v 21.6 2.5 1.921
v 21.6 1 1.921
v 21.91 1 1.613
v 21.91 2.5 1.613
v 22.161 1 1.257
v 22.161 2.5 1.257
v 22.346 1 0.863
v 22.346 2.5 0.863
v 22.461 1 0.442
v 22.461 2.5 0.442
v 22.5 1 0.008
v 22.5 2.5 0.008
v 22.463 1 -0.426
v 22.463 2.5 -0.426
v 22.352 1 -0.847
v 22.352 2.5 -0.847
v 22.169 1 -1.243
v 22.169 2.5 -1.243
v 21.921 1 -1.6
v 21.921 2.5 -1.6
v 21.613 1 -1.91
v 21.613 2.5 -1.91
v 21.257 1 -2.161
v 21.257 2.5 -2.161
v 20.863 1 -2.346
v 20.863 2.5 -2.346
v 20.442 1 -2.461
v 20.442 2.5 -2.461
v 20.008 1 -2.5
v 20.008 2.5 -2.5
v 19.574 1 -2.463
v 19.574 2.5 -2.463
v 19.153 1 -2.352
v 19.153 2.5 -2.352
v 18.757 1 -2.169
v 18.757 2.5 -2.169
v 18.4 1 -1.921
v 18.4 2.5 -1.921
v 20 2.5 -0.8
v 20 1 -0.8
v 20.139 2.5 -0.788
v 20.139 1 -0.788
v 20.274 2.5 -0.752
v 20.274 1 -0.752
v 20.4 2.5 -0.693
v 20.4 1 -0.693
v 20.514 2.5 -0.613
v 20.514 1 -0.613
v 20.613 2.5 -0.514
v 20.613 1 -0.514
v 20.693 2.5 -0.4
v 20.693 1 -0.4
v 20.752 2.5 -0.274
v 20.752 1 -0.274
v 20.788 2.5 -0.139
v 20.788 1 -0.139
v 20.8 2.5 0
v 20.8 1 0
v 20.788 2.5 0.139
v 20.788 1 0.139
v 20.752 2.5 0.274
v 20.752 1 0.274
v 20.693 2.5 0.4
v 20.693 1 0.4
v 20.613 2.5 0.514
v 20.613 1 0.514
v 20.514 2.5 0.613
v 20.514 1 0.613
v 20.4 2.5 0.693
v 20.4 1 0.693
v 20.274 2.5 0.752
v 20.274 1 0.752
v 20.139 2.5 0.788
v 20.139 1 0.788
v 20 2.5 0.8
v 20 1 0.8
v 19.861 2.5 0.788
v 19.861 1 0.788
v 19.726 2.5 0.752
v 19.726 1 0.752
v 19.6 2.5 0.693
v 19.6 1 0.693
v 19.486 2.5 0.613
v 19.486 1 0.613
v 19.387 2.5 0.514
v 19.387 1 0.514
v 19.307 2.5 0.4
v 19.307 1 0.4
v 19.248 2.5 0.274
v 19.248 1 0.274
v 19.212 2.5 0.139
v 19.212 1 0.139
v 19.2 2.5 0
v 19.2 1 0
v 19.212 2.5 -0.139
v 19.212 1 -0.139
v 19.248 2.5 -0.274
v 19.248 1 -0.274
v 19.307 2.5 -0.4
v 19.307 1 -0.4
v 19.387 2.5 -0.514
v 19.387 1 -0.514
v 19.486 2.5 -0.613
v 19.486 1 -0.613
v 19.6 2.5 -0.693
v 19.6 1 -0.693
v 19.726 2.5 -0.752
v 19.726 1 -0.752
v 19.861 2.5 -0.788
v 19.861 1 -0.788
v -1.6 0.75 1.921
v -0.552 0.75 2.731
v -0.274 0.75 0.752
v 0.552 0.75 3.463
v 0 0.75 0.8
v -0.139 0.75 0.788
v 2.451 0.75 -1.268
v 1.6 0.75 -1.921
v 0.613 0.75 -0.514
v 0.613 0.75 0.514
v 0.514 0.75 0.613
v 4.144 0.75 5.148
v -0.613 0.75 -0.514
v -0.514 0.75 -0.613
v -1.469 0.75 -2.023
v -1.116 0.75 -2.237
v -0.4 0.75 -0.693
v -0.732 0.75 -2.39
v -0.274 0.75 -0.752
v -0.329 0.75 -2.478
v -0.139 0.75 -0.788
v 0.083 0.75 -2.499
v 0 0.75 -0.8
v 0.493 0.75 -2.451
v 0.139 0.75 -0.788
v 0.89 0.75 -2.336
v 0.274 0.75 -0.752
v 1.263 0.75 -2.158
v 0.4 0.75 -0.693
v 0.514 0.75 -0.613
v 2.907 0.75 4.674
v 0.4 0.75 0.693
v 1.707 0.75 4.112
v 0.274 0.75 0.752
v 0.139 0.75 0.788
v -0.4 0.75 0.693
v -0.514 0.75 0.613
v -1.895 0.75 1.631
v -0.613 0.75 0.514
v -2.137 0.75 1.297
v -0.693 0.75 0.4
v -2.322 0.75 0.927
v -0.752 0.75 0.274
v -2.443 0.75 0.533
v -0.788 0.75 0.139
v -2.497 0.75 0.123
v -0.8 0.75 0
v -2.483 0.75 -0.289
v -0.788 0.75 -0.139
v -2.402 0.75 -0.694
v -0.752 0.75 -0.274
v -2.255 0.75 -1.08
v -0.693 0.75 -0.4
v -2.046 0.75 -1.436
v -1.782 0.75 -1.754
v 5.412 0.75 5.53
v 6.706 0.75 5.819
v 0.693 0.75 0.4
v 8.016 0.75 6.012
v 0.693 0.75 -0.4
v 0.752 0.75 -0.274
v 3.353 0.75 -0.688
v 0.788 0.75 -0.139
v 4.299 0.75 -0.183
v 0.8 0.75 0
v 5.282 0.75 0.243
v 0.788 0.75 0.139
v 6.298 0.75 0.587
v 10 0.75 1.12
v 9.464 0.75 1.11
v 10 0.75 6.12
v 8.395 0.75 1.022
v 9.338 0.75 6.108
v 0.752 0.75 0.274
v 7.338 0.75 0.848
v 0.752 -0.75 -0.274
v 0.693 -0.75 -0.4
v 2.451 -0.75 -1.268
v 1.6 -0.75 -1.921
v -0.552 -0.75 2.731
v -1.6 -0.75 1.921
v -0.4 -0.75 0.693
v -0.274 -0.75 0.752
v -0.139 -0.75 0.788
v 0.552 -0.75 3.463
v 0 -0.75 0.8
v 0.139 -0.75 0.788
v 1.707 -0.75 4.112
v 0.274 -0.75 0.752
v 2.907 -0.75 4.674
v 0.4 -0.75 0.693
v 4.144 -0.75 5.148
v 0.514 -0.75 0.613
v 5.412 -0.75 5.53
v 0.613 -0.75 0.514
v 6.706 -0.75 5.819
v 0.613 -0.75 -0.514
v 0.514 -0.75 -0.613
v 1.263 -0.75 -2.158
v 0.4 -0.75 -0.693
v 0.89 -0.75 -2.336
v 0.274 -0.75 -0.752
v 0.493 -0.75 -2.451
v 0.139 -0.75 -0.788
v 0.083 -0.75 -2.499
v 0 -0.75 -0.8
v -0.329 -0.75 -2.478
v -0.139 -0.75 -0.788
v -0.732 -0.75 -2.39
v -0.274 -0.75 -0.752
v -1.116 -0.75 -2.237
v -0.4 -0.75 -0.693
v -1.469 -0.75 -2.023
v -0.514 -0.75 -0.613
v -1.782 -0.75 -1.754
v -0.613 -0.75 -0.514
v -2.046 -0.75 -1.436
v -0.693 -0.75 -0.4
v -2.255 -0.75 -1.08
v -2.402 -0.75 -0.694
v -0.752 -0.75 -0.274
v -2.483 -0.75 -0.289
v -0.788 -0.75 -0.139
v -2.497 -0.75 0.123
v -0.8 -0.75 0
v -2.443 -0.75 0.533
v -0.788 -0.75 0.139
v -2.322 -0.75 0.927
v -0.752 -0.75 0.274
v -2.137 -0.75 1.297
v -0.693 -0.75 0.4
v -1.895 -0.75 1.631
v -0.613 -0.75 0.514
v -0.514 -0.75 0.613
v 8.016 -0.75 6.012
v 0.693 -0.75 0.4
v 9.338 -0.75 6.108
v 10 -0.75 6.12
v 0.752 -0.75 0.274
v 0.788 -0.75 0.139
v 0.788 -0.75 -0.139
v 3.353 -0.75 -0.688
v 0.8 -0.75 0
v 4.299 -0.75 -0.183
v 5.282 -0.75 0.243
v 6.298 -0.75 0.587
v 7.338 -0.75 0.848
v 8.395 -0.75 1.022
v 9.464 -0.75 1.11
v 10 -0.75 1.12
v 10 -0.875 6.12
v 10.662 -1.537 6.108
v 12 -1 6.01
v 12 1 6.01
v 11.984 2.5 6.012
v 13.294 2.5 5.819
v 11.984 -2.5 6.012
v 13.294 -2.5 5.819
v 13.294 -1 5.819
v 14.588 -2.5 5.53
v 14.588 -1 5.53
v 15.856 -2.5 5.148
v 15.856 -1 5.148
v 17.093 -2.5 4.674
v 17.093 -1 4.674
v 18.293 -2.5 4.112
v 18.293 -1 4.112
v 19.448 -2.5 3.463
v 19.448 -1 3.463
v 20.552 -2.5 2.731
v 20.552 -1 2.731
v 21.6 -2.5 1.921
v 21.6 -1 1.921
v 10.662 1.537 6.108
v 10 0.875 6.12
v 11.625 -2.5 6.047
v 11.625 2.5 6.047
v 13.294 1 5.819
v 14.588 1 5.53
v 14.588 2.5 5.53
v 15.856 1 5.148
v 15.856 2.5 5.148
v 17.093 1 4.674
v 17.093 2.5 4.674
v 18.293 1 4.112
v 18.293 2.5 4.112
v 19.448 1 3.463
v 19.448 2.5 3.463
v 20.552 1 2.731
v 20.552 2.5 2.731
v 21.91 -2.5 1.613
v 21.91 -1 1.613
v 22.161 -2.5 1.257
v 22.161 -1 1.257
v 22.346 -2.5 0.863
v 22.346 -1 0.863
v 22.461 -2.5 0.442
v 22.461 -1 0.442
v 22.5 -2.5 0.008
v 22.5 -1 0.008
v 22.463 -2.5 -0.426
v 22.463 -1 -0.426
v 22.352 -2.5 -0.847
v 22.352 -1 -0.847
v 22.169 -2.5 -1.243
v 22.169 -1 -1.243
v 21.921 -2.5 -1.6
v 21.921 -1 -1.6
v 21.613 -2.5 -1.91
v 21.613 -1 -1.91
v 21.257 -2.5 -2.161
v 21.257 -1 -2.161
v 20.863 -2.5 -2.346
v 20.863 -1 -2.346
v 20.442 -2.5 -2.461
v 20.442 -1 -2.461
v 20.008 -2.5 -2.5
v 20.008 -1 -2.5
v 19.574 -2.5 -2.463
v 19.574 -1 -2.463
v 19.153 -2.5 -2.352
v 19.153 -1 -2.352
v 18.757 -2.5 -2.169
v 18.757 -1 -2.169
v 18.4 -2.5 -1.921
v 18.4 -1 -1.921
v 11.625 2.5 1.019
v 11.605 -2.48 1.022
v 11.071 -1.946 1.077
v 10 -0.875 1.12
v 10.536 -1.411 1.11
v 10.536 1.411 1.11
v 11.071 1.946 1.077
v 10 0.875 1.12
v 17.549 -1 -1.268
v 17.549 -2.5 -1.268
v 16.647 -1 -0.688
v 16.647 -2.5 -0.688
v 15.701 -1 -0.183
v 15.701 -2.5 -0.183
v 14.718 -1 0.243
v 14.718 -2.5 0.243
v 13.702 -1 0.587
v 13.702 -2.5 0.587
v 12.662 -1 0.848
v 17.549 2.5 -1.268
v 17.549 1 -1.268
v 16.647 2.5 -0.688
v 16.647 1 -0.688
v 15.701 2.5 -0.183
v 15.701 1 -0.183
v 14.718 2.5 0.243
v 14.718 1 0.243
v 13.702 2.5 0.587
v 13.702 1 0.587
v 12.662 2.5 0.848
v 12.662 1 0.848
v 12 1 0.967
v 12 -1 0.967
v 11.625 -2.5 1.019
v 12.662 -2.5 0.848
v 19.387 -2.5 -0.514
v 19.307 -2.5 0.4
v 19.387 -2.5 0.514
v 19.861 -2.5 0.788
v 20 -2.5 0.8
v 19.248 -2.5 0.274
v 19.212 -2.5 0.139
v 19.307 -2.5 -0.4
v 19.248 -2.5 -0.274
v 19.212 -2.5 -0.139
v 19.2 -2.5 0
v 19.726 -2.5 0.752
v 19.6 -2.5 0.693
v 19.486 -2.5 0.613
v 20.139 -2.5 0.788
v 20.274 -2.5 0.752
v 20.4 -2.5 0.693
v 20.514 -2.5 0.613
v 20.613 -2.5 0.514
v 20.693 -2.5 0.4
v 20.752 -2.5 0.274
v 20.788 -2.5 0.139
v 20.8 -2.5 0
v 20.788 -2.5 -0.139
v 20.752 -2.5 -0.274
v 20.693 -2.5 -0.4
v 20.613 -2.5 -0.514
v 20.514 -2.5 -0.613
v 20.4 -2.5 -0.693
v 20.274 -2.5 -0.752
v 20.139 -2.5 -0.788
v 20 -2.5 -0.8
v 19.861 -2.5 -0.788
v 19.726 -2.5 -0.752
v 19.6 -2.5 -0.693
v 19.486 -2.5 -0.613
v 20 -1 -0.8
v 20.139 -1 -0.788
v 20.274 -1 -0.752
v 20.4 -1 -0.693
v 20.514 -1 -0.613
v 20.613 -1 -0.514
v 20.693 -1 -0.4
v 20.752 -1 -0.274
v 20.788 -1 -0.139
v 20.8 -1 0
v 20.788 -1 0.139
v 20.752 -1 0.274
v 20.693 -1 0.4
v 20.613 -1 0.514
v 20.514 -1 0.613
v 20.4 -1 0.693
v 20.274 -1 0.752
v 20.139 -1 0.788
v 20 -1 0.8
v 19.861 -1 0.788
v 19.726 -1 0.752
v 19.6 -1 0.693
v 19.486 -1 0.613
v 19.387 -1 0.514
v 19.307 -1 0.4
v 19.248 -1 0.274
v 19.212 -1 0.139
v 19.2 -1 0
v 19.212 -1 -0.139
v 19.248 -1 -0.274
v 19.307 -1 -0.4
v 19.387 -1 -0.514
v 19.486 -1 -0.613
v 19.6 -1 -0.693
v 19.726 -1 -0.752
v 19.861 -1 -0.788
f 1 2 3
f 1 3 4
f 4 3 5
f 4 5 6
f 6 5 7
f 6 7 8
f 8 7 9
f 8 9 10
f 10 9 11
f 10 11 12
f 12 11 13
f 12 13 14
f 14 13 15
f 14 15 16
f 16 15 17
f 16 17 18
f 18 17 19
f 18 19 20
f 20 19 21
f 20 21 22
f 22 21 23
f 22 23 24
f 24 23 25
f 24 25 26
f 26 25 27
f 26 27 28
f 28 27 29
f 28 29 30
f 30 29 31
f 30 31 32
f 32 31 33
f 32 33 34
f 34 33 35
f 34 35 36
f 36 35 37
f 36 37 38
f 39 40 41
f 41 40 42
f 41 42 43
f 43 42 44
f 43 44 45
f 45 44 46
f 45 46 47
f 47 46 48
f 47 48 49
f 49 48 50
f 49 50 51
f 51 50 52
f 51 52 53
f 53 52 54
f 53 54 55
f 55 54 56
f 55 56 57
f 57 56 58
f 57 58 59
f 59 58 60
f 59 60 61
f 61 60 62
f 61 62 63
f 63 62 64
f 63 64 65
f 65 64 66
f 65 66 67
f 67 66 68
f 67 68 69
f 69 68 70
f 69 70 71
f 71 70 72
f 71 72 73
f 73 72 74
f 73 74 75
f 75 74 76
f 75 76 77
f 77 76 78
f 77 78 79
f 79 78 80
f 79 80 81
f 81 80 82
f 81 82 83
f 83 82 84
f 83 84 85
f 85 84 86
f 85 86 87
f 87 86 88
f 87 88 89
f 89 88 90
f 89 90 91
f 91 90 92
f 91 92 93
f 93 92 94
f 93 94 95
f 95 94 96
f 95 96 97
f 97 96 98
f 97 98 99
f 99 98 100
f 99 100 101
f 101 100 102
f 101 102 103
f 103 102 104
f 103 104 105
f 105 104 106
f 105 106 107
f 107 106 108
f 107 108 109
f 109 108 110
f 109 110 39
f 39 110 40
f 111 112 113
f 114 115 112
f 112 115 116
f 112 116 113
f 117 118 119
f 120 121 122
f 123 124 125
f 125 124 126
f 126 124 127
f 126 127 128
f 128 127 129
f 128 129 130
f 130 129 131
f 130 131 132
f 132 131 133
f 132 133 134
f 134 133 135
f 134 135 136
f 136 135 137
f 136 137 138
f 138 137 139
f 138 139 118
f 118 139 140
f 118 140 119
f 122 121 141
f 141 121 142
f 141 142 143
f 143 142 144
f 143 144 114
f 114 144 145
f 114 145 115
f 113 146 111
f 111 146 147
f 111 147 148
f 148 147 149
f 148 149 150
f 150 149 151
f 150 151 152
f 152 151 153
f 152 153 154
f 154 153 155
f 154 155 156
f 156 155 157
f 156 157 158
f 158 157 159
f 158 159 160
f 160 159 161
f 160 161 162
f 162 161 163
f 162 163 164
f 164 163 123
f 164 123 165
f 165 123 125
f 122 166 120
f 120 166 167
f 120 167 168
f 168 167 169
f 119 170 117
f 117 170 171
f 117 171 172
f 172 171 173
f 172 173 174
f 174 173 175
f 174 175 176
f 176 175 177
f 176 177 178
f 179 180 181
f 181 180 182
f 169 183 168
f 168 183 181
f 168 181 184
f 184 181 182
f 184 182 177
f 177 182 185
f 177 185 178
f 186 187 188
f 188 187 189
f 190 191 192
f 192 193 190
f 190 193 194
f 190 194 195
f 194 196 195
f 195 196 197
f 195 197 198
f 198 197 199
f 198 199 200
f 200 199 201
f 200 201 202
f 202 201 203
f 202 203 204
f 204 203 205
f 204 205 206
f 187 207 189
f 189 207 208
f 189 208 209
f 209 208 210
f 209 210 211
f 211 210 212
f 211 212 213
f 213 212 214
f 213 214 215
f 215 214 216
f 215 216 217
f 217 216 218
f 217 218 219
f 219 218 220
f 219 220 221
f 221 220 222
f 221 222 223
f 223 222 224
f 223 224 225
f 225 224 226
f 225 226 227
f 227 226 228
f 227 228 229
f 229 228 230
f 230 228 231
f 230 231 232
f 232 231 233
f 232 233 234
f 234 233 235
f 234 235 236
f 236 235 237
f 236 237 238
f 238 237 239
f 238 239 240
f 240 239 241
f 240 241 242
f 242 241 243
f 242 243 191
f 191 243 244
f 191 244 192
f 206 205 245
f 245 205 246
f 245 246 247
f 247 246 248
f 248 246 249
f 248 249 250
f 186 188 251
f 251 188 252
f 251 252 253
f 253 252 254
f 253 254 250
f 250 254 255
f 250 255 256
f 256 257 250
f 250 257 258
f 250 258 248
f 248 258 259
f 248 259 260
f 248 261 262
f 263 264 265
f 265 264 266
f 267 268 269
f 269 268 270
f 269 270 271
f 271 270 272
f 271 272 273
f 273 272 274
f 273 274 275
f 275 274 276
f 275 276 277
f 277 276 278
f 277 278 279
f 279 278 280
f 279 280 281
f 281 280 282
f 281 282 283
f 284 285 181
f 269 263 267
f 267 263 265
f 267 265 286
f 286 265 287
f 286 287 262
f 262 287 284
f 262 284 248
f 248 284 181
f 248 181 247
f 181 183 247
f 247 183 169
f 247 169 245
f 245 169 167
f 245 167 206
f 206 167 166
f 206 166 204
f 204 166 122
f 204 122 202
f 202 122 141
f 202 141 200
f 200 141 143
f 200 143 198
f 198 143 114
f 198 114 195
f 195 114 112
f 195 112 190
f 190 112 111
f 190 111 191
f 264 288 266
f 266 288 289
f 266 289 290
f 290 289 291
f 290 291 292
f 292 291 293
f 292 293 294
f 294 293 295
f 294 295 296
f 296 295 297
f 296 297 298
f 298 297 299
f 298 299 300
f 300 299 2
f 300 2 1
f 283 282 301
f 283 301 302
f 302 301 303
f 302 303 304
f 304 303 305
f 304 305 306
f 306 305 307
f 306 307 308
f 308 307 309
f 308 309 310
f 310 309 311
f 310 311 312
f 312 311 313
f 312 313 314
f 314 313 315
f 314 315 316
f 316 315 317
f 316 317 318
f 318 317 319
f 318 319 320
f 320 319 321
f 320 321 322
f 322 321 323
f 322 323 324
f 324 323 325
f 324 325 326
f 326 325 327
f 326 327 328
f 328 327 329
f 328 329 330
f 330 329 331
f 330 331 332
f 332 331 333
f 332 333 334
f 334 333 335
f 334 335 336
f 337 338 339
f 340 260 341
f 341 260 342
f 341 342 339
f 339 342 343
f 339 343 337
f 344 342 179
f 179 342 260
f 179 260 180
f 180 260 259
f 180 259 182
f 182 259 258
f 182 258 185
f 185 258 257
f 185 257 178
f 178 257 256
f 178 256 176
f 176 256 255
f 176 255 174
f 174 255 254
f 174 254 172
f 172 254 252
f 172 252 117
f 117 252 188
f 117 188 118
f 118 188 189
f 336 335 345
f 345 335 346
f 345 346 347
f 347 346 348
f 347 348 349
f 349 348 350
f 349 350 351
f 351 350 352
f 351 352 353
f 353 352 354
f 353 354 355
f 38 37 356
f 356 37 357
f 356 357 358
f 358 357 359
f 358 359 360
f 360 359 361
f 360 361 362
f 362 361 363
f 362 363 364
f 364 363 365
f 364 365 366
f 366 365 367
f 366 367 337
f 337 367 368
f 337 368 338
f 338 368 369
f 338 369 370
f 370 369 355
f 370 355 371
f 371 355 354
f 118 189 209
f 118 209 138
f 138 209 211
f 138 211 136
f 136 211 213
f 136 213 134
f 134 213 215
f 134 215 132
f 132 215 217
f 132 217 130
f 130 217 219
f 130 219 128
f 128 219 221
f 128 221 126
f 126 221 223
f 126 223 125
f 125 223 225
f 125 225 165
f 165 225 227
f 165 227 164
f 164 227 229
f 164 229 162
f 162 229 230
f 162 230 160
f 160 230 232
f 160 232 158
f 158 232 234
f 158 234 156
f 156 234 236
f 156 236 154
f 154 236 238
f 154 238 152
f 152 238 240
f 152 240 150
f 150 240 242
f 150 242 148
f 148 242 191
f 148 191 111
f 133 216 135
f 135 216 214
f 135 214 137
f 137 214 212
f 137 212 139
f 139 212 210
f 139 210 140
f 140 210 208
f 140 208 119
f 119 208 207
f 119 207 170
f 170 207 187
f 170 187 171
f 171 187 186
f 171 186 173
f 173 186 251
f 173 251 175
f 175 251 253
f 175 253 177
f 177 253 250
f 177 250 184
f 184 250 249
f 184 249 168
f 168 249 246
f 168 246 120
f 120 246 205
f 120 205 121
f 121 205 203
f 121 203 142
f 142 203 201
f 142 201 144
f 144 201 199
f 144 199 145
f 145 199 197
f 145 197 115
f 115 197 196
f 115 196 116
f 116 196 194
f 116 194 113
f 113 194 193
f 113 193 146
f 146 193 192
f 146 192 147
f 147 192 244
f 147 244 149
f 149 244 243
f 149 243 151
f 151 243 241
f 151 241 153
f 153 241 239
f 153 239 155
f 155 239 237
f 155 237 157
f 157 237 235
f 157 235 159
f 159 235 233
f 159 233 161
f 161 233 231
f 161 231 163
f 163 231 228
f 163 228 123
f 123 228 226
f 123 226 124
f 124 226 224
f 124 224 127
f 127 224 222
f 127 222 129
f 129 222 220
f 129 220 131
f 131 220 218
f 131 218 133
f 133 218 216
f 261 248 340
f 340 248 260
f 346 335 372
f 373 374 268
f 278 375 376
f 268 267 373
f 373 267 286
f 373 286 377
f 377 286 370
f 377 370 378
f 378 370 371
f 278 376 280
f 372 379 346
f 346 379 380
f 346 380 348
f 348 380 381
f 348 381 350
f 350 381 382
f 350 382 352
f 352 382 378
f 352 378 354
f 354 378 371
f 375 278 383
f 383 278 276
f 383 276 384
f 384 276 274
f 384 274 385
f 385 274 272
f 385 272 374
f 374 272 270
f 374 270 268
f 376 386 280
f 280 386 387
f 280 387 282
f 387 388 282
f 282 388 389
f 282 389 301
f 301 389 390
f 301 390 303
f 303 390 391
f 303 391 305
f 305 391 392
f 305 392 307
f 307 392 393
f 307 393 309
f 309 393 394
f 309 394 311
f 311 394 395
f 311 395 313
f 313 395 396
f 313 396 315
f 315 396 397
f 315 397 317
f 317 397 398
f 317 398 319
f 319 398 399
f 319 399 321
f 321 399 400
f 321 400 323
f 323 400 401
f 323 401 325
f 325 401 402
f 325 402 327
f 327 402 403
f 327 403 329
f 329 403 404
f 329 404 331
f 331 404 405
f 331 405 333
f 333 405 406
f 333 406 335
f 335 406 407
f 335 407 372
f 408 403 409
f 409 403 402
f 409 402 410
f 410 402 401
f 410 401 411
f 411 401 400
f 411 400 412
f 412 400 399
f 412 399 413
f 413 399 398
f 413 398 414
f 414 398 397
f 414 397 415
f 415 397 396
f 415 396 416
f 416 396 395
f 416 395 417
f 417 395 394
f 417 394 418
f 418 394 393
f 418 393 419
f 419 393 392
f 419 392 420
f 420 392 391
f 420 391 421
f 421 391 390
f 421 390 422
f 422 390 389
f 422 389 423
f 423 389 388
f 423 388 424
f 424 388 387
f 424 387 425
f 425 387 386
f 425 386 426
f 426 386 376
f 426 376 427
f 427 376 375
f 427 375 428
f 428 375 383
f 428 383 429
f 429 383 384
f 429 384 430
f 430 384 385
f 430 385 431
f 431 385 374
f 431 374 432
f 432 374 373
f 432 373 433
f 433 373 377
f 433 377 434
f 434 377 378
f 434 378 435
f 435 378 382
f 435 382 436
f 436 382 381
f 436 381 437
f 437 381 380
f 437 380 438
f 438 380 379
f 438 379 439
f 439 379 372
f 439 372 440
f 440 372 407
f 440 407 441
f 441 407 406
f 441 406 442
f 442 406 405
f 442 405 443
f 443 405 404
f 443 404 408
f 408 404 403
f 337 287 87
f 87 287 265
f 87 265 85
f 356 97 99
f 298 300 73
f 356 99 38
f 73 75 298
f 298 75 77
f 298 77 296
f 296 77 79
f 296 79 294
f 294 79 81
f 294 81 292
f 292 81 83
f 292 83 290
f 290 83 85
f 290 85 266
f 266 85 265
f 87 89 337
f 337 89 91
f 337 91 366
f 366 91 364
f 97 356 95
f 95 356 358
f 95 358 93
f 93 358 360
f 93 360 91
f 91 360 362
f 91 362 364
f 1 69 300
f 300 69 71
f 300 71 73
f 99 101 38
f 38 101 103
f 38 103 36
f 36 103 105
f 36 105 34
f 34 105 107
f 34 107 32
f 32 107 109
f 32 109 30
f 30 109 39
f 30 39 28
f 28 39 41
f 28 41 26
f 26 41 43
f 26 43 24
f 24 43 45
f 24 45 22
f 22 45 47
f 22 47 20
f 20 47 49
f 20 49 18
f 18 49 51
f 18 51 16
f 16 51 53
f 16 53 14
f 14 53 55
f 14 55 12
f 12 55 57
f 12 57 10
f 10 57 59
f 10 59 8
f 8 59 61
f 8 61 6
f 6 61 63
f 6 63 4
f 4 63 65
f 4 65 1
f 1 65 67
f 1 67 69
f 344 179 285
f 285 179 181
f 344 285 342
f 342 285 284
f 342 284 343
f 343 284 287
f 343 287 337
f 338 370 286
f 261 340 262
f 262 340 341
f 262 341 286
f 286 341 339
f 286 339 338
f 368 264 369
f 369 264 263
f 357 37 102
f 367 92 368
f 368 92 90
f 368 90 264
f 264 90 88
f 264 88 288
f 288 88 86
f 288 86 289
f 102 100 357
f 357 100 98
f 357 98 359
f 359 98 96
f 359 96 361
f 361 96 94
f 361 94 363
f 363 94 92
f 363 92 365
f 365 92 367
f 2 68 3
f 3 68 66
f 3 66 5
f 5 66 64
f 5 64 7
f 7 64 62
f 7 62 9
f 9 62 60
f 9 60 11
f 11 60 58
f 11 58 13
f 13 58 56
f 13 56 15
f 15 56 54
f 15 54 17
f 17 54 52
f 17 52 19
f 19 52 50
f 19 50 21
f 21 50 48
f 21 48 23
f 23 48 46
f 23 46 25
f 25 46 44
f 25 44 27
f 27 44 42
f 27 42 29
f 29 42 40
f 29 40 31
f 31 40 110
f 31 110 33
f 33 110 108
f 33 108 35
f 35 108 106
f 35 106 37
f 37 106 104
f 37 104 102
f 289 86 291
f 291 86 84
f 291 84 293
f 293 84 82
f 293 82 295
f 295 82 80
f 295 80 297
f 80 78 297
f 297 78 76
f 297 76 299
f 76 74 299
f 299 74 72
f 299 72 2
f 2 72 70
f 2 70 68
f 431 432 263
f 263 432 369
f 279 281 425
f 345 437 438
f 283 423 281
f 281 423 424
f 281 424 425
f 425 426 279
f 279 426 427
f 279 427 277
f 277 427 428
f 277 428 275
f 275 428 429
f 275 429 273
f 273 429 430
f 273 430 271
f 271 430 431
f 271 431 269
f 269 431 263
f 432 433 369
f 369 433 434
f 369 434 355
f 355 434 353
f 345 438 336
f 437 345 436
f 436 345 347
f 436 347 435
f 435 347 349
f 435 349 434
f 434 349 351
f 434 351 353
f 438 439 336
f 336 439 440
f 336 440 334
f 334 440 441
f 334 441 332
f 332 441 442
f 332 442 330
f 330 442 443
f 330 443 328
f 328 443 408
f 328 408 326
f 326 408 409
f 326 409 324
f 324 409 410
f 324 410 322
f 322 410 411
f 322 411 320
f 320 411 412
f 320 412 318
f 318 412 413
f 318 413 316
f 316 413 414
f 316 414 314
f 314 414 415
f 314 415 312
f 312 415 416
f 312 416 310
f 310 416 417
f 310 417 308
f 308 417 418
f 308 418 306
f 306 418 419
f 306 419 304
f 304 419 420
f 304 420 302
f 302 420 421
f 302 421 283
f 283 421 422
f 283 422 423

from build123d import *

# Parameters (mm, degrees)
SKETCH1_R               = 0.8
BOSS_EXTRUDE1_DEPTH     = 0.75
SKETCH2_R               = 0.8
BOSS_EXTRUDE2_DEPTH     = 2.5
CHAMFER1_SIZE           = 1.625
CUT_EXTRUDE1_DEPTH      = 24.451236904
CUT_EXTRUDE1_DEPTH_BACK = 24.451236904
SKETCH3_W               = 10.5
SKETCH3_H               = 2


with BuildPart() as part:
    # Sketch1 → Boss-Extrude1 (new, symmetric)
    with BuildSketch(Plane(origin=(0, 0, 0), x_dir=(1, 0, 0), z_dir=(0, 1, 0))):
        with BuildLine():
            ThreePointArc((1.600460999, 1.920553199), (-1.920553199, 1.600460999), (-1.600460999, -1.920553199))
            ThreePointArc((-1.600460999, -1.920553199), (10, -6.120499352), (21.600460999, -1.920553199))
            ThreePointArc((21.600460999, -1.920553199), (21.920553199, 1.600460999), (18.399539001, 1.920553199))
            ThreePointArc((18.399539001, 1.920553199), (10, -1.120499352), (1.600460999, 1.920553199))
        make_face()
        with Locations(Location((0, 0, 0), (0, 0, 270))):
            Circle(SKETCH1_R, mode=Mode.SUBTRACT)
        with Locations(Location((20, 0, 0), (0, 0, 270))):
            Circle(SKETCH1_R, mode=Mode.SUBTRACT)
    extrude(amount=BOSS_EXTRUDE1_DEPTH, both=True)

    # Sketch2 → Boss-Extrude2 (add, symmetric)
    with BuildSketch(Plane(origin=(0, 0, 0), x_dir=(1, 0, 0), z_dir=(0, 1, 0))):
        with BuildLine():
            Line((10, -1.120499352), (10, -6.120499352))
            ThreePointArc((10, -6.120499352), (16.168675771, -5.038190514), (21.600460999, -1.920553199))
            ThreePointArc((21.600460999, -1.920553199), (21.920553199, 1.600460999), (18.399539001, 1.920553199))
            ThreePointArc((18.399539001, 1.920553199), (14.466549452, -0.336832626), (10, -1.120499352))
        make_face()
        with Locations(Location((20, 0, 0), (0, 0, 270))):
            Circle(SKETCH2_R, mode=Mode.SUBTRACT)
    extrude(amount=BOSS_EXTRUDE2_DEPTH, both=True)

    # Chamfer1
    chamfer1_edges = [part.edges().sort_by_distance(p)[0] for p in [
        (10, -2.5, 3.620499352),
        (10, 2.5, 3.620499352),
    ]]
    chamfer(chamfer1_edges, length=CHAMFER1_SIZE)

    # Sketch3 → Cut-Extrude1 (cut, two sides: drawn at the far end of the back side and taken through both)
    with BuildSketch(Plane(origin=(0, 0, 0), x_dir=(-1, 0, 0), z_dir=(0, 0, -1)).offset(-CUT_EXTRUDE1_DEPTH_BACK)):
        with Locations((-17.25, 0)):
            Rectangle(SKETCH3_W, SKETCH3_H)
    extrude(amount=CUT_EXTRUDE1_DEPTH + CUT_EXTRUDE1_DEPTH_BACK, mode=Mode.SUBTRACT)


solid = part.part
